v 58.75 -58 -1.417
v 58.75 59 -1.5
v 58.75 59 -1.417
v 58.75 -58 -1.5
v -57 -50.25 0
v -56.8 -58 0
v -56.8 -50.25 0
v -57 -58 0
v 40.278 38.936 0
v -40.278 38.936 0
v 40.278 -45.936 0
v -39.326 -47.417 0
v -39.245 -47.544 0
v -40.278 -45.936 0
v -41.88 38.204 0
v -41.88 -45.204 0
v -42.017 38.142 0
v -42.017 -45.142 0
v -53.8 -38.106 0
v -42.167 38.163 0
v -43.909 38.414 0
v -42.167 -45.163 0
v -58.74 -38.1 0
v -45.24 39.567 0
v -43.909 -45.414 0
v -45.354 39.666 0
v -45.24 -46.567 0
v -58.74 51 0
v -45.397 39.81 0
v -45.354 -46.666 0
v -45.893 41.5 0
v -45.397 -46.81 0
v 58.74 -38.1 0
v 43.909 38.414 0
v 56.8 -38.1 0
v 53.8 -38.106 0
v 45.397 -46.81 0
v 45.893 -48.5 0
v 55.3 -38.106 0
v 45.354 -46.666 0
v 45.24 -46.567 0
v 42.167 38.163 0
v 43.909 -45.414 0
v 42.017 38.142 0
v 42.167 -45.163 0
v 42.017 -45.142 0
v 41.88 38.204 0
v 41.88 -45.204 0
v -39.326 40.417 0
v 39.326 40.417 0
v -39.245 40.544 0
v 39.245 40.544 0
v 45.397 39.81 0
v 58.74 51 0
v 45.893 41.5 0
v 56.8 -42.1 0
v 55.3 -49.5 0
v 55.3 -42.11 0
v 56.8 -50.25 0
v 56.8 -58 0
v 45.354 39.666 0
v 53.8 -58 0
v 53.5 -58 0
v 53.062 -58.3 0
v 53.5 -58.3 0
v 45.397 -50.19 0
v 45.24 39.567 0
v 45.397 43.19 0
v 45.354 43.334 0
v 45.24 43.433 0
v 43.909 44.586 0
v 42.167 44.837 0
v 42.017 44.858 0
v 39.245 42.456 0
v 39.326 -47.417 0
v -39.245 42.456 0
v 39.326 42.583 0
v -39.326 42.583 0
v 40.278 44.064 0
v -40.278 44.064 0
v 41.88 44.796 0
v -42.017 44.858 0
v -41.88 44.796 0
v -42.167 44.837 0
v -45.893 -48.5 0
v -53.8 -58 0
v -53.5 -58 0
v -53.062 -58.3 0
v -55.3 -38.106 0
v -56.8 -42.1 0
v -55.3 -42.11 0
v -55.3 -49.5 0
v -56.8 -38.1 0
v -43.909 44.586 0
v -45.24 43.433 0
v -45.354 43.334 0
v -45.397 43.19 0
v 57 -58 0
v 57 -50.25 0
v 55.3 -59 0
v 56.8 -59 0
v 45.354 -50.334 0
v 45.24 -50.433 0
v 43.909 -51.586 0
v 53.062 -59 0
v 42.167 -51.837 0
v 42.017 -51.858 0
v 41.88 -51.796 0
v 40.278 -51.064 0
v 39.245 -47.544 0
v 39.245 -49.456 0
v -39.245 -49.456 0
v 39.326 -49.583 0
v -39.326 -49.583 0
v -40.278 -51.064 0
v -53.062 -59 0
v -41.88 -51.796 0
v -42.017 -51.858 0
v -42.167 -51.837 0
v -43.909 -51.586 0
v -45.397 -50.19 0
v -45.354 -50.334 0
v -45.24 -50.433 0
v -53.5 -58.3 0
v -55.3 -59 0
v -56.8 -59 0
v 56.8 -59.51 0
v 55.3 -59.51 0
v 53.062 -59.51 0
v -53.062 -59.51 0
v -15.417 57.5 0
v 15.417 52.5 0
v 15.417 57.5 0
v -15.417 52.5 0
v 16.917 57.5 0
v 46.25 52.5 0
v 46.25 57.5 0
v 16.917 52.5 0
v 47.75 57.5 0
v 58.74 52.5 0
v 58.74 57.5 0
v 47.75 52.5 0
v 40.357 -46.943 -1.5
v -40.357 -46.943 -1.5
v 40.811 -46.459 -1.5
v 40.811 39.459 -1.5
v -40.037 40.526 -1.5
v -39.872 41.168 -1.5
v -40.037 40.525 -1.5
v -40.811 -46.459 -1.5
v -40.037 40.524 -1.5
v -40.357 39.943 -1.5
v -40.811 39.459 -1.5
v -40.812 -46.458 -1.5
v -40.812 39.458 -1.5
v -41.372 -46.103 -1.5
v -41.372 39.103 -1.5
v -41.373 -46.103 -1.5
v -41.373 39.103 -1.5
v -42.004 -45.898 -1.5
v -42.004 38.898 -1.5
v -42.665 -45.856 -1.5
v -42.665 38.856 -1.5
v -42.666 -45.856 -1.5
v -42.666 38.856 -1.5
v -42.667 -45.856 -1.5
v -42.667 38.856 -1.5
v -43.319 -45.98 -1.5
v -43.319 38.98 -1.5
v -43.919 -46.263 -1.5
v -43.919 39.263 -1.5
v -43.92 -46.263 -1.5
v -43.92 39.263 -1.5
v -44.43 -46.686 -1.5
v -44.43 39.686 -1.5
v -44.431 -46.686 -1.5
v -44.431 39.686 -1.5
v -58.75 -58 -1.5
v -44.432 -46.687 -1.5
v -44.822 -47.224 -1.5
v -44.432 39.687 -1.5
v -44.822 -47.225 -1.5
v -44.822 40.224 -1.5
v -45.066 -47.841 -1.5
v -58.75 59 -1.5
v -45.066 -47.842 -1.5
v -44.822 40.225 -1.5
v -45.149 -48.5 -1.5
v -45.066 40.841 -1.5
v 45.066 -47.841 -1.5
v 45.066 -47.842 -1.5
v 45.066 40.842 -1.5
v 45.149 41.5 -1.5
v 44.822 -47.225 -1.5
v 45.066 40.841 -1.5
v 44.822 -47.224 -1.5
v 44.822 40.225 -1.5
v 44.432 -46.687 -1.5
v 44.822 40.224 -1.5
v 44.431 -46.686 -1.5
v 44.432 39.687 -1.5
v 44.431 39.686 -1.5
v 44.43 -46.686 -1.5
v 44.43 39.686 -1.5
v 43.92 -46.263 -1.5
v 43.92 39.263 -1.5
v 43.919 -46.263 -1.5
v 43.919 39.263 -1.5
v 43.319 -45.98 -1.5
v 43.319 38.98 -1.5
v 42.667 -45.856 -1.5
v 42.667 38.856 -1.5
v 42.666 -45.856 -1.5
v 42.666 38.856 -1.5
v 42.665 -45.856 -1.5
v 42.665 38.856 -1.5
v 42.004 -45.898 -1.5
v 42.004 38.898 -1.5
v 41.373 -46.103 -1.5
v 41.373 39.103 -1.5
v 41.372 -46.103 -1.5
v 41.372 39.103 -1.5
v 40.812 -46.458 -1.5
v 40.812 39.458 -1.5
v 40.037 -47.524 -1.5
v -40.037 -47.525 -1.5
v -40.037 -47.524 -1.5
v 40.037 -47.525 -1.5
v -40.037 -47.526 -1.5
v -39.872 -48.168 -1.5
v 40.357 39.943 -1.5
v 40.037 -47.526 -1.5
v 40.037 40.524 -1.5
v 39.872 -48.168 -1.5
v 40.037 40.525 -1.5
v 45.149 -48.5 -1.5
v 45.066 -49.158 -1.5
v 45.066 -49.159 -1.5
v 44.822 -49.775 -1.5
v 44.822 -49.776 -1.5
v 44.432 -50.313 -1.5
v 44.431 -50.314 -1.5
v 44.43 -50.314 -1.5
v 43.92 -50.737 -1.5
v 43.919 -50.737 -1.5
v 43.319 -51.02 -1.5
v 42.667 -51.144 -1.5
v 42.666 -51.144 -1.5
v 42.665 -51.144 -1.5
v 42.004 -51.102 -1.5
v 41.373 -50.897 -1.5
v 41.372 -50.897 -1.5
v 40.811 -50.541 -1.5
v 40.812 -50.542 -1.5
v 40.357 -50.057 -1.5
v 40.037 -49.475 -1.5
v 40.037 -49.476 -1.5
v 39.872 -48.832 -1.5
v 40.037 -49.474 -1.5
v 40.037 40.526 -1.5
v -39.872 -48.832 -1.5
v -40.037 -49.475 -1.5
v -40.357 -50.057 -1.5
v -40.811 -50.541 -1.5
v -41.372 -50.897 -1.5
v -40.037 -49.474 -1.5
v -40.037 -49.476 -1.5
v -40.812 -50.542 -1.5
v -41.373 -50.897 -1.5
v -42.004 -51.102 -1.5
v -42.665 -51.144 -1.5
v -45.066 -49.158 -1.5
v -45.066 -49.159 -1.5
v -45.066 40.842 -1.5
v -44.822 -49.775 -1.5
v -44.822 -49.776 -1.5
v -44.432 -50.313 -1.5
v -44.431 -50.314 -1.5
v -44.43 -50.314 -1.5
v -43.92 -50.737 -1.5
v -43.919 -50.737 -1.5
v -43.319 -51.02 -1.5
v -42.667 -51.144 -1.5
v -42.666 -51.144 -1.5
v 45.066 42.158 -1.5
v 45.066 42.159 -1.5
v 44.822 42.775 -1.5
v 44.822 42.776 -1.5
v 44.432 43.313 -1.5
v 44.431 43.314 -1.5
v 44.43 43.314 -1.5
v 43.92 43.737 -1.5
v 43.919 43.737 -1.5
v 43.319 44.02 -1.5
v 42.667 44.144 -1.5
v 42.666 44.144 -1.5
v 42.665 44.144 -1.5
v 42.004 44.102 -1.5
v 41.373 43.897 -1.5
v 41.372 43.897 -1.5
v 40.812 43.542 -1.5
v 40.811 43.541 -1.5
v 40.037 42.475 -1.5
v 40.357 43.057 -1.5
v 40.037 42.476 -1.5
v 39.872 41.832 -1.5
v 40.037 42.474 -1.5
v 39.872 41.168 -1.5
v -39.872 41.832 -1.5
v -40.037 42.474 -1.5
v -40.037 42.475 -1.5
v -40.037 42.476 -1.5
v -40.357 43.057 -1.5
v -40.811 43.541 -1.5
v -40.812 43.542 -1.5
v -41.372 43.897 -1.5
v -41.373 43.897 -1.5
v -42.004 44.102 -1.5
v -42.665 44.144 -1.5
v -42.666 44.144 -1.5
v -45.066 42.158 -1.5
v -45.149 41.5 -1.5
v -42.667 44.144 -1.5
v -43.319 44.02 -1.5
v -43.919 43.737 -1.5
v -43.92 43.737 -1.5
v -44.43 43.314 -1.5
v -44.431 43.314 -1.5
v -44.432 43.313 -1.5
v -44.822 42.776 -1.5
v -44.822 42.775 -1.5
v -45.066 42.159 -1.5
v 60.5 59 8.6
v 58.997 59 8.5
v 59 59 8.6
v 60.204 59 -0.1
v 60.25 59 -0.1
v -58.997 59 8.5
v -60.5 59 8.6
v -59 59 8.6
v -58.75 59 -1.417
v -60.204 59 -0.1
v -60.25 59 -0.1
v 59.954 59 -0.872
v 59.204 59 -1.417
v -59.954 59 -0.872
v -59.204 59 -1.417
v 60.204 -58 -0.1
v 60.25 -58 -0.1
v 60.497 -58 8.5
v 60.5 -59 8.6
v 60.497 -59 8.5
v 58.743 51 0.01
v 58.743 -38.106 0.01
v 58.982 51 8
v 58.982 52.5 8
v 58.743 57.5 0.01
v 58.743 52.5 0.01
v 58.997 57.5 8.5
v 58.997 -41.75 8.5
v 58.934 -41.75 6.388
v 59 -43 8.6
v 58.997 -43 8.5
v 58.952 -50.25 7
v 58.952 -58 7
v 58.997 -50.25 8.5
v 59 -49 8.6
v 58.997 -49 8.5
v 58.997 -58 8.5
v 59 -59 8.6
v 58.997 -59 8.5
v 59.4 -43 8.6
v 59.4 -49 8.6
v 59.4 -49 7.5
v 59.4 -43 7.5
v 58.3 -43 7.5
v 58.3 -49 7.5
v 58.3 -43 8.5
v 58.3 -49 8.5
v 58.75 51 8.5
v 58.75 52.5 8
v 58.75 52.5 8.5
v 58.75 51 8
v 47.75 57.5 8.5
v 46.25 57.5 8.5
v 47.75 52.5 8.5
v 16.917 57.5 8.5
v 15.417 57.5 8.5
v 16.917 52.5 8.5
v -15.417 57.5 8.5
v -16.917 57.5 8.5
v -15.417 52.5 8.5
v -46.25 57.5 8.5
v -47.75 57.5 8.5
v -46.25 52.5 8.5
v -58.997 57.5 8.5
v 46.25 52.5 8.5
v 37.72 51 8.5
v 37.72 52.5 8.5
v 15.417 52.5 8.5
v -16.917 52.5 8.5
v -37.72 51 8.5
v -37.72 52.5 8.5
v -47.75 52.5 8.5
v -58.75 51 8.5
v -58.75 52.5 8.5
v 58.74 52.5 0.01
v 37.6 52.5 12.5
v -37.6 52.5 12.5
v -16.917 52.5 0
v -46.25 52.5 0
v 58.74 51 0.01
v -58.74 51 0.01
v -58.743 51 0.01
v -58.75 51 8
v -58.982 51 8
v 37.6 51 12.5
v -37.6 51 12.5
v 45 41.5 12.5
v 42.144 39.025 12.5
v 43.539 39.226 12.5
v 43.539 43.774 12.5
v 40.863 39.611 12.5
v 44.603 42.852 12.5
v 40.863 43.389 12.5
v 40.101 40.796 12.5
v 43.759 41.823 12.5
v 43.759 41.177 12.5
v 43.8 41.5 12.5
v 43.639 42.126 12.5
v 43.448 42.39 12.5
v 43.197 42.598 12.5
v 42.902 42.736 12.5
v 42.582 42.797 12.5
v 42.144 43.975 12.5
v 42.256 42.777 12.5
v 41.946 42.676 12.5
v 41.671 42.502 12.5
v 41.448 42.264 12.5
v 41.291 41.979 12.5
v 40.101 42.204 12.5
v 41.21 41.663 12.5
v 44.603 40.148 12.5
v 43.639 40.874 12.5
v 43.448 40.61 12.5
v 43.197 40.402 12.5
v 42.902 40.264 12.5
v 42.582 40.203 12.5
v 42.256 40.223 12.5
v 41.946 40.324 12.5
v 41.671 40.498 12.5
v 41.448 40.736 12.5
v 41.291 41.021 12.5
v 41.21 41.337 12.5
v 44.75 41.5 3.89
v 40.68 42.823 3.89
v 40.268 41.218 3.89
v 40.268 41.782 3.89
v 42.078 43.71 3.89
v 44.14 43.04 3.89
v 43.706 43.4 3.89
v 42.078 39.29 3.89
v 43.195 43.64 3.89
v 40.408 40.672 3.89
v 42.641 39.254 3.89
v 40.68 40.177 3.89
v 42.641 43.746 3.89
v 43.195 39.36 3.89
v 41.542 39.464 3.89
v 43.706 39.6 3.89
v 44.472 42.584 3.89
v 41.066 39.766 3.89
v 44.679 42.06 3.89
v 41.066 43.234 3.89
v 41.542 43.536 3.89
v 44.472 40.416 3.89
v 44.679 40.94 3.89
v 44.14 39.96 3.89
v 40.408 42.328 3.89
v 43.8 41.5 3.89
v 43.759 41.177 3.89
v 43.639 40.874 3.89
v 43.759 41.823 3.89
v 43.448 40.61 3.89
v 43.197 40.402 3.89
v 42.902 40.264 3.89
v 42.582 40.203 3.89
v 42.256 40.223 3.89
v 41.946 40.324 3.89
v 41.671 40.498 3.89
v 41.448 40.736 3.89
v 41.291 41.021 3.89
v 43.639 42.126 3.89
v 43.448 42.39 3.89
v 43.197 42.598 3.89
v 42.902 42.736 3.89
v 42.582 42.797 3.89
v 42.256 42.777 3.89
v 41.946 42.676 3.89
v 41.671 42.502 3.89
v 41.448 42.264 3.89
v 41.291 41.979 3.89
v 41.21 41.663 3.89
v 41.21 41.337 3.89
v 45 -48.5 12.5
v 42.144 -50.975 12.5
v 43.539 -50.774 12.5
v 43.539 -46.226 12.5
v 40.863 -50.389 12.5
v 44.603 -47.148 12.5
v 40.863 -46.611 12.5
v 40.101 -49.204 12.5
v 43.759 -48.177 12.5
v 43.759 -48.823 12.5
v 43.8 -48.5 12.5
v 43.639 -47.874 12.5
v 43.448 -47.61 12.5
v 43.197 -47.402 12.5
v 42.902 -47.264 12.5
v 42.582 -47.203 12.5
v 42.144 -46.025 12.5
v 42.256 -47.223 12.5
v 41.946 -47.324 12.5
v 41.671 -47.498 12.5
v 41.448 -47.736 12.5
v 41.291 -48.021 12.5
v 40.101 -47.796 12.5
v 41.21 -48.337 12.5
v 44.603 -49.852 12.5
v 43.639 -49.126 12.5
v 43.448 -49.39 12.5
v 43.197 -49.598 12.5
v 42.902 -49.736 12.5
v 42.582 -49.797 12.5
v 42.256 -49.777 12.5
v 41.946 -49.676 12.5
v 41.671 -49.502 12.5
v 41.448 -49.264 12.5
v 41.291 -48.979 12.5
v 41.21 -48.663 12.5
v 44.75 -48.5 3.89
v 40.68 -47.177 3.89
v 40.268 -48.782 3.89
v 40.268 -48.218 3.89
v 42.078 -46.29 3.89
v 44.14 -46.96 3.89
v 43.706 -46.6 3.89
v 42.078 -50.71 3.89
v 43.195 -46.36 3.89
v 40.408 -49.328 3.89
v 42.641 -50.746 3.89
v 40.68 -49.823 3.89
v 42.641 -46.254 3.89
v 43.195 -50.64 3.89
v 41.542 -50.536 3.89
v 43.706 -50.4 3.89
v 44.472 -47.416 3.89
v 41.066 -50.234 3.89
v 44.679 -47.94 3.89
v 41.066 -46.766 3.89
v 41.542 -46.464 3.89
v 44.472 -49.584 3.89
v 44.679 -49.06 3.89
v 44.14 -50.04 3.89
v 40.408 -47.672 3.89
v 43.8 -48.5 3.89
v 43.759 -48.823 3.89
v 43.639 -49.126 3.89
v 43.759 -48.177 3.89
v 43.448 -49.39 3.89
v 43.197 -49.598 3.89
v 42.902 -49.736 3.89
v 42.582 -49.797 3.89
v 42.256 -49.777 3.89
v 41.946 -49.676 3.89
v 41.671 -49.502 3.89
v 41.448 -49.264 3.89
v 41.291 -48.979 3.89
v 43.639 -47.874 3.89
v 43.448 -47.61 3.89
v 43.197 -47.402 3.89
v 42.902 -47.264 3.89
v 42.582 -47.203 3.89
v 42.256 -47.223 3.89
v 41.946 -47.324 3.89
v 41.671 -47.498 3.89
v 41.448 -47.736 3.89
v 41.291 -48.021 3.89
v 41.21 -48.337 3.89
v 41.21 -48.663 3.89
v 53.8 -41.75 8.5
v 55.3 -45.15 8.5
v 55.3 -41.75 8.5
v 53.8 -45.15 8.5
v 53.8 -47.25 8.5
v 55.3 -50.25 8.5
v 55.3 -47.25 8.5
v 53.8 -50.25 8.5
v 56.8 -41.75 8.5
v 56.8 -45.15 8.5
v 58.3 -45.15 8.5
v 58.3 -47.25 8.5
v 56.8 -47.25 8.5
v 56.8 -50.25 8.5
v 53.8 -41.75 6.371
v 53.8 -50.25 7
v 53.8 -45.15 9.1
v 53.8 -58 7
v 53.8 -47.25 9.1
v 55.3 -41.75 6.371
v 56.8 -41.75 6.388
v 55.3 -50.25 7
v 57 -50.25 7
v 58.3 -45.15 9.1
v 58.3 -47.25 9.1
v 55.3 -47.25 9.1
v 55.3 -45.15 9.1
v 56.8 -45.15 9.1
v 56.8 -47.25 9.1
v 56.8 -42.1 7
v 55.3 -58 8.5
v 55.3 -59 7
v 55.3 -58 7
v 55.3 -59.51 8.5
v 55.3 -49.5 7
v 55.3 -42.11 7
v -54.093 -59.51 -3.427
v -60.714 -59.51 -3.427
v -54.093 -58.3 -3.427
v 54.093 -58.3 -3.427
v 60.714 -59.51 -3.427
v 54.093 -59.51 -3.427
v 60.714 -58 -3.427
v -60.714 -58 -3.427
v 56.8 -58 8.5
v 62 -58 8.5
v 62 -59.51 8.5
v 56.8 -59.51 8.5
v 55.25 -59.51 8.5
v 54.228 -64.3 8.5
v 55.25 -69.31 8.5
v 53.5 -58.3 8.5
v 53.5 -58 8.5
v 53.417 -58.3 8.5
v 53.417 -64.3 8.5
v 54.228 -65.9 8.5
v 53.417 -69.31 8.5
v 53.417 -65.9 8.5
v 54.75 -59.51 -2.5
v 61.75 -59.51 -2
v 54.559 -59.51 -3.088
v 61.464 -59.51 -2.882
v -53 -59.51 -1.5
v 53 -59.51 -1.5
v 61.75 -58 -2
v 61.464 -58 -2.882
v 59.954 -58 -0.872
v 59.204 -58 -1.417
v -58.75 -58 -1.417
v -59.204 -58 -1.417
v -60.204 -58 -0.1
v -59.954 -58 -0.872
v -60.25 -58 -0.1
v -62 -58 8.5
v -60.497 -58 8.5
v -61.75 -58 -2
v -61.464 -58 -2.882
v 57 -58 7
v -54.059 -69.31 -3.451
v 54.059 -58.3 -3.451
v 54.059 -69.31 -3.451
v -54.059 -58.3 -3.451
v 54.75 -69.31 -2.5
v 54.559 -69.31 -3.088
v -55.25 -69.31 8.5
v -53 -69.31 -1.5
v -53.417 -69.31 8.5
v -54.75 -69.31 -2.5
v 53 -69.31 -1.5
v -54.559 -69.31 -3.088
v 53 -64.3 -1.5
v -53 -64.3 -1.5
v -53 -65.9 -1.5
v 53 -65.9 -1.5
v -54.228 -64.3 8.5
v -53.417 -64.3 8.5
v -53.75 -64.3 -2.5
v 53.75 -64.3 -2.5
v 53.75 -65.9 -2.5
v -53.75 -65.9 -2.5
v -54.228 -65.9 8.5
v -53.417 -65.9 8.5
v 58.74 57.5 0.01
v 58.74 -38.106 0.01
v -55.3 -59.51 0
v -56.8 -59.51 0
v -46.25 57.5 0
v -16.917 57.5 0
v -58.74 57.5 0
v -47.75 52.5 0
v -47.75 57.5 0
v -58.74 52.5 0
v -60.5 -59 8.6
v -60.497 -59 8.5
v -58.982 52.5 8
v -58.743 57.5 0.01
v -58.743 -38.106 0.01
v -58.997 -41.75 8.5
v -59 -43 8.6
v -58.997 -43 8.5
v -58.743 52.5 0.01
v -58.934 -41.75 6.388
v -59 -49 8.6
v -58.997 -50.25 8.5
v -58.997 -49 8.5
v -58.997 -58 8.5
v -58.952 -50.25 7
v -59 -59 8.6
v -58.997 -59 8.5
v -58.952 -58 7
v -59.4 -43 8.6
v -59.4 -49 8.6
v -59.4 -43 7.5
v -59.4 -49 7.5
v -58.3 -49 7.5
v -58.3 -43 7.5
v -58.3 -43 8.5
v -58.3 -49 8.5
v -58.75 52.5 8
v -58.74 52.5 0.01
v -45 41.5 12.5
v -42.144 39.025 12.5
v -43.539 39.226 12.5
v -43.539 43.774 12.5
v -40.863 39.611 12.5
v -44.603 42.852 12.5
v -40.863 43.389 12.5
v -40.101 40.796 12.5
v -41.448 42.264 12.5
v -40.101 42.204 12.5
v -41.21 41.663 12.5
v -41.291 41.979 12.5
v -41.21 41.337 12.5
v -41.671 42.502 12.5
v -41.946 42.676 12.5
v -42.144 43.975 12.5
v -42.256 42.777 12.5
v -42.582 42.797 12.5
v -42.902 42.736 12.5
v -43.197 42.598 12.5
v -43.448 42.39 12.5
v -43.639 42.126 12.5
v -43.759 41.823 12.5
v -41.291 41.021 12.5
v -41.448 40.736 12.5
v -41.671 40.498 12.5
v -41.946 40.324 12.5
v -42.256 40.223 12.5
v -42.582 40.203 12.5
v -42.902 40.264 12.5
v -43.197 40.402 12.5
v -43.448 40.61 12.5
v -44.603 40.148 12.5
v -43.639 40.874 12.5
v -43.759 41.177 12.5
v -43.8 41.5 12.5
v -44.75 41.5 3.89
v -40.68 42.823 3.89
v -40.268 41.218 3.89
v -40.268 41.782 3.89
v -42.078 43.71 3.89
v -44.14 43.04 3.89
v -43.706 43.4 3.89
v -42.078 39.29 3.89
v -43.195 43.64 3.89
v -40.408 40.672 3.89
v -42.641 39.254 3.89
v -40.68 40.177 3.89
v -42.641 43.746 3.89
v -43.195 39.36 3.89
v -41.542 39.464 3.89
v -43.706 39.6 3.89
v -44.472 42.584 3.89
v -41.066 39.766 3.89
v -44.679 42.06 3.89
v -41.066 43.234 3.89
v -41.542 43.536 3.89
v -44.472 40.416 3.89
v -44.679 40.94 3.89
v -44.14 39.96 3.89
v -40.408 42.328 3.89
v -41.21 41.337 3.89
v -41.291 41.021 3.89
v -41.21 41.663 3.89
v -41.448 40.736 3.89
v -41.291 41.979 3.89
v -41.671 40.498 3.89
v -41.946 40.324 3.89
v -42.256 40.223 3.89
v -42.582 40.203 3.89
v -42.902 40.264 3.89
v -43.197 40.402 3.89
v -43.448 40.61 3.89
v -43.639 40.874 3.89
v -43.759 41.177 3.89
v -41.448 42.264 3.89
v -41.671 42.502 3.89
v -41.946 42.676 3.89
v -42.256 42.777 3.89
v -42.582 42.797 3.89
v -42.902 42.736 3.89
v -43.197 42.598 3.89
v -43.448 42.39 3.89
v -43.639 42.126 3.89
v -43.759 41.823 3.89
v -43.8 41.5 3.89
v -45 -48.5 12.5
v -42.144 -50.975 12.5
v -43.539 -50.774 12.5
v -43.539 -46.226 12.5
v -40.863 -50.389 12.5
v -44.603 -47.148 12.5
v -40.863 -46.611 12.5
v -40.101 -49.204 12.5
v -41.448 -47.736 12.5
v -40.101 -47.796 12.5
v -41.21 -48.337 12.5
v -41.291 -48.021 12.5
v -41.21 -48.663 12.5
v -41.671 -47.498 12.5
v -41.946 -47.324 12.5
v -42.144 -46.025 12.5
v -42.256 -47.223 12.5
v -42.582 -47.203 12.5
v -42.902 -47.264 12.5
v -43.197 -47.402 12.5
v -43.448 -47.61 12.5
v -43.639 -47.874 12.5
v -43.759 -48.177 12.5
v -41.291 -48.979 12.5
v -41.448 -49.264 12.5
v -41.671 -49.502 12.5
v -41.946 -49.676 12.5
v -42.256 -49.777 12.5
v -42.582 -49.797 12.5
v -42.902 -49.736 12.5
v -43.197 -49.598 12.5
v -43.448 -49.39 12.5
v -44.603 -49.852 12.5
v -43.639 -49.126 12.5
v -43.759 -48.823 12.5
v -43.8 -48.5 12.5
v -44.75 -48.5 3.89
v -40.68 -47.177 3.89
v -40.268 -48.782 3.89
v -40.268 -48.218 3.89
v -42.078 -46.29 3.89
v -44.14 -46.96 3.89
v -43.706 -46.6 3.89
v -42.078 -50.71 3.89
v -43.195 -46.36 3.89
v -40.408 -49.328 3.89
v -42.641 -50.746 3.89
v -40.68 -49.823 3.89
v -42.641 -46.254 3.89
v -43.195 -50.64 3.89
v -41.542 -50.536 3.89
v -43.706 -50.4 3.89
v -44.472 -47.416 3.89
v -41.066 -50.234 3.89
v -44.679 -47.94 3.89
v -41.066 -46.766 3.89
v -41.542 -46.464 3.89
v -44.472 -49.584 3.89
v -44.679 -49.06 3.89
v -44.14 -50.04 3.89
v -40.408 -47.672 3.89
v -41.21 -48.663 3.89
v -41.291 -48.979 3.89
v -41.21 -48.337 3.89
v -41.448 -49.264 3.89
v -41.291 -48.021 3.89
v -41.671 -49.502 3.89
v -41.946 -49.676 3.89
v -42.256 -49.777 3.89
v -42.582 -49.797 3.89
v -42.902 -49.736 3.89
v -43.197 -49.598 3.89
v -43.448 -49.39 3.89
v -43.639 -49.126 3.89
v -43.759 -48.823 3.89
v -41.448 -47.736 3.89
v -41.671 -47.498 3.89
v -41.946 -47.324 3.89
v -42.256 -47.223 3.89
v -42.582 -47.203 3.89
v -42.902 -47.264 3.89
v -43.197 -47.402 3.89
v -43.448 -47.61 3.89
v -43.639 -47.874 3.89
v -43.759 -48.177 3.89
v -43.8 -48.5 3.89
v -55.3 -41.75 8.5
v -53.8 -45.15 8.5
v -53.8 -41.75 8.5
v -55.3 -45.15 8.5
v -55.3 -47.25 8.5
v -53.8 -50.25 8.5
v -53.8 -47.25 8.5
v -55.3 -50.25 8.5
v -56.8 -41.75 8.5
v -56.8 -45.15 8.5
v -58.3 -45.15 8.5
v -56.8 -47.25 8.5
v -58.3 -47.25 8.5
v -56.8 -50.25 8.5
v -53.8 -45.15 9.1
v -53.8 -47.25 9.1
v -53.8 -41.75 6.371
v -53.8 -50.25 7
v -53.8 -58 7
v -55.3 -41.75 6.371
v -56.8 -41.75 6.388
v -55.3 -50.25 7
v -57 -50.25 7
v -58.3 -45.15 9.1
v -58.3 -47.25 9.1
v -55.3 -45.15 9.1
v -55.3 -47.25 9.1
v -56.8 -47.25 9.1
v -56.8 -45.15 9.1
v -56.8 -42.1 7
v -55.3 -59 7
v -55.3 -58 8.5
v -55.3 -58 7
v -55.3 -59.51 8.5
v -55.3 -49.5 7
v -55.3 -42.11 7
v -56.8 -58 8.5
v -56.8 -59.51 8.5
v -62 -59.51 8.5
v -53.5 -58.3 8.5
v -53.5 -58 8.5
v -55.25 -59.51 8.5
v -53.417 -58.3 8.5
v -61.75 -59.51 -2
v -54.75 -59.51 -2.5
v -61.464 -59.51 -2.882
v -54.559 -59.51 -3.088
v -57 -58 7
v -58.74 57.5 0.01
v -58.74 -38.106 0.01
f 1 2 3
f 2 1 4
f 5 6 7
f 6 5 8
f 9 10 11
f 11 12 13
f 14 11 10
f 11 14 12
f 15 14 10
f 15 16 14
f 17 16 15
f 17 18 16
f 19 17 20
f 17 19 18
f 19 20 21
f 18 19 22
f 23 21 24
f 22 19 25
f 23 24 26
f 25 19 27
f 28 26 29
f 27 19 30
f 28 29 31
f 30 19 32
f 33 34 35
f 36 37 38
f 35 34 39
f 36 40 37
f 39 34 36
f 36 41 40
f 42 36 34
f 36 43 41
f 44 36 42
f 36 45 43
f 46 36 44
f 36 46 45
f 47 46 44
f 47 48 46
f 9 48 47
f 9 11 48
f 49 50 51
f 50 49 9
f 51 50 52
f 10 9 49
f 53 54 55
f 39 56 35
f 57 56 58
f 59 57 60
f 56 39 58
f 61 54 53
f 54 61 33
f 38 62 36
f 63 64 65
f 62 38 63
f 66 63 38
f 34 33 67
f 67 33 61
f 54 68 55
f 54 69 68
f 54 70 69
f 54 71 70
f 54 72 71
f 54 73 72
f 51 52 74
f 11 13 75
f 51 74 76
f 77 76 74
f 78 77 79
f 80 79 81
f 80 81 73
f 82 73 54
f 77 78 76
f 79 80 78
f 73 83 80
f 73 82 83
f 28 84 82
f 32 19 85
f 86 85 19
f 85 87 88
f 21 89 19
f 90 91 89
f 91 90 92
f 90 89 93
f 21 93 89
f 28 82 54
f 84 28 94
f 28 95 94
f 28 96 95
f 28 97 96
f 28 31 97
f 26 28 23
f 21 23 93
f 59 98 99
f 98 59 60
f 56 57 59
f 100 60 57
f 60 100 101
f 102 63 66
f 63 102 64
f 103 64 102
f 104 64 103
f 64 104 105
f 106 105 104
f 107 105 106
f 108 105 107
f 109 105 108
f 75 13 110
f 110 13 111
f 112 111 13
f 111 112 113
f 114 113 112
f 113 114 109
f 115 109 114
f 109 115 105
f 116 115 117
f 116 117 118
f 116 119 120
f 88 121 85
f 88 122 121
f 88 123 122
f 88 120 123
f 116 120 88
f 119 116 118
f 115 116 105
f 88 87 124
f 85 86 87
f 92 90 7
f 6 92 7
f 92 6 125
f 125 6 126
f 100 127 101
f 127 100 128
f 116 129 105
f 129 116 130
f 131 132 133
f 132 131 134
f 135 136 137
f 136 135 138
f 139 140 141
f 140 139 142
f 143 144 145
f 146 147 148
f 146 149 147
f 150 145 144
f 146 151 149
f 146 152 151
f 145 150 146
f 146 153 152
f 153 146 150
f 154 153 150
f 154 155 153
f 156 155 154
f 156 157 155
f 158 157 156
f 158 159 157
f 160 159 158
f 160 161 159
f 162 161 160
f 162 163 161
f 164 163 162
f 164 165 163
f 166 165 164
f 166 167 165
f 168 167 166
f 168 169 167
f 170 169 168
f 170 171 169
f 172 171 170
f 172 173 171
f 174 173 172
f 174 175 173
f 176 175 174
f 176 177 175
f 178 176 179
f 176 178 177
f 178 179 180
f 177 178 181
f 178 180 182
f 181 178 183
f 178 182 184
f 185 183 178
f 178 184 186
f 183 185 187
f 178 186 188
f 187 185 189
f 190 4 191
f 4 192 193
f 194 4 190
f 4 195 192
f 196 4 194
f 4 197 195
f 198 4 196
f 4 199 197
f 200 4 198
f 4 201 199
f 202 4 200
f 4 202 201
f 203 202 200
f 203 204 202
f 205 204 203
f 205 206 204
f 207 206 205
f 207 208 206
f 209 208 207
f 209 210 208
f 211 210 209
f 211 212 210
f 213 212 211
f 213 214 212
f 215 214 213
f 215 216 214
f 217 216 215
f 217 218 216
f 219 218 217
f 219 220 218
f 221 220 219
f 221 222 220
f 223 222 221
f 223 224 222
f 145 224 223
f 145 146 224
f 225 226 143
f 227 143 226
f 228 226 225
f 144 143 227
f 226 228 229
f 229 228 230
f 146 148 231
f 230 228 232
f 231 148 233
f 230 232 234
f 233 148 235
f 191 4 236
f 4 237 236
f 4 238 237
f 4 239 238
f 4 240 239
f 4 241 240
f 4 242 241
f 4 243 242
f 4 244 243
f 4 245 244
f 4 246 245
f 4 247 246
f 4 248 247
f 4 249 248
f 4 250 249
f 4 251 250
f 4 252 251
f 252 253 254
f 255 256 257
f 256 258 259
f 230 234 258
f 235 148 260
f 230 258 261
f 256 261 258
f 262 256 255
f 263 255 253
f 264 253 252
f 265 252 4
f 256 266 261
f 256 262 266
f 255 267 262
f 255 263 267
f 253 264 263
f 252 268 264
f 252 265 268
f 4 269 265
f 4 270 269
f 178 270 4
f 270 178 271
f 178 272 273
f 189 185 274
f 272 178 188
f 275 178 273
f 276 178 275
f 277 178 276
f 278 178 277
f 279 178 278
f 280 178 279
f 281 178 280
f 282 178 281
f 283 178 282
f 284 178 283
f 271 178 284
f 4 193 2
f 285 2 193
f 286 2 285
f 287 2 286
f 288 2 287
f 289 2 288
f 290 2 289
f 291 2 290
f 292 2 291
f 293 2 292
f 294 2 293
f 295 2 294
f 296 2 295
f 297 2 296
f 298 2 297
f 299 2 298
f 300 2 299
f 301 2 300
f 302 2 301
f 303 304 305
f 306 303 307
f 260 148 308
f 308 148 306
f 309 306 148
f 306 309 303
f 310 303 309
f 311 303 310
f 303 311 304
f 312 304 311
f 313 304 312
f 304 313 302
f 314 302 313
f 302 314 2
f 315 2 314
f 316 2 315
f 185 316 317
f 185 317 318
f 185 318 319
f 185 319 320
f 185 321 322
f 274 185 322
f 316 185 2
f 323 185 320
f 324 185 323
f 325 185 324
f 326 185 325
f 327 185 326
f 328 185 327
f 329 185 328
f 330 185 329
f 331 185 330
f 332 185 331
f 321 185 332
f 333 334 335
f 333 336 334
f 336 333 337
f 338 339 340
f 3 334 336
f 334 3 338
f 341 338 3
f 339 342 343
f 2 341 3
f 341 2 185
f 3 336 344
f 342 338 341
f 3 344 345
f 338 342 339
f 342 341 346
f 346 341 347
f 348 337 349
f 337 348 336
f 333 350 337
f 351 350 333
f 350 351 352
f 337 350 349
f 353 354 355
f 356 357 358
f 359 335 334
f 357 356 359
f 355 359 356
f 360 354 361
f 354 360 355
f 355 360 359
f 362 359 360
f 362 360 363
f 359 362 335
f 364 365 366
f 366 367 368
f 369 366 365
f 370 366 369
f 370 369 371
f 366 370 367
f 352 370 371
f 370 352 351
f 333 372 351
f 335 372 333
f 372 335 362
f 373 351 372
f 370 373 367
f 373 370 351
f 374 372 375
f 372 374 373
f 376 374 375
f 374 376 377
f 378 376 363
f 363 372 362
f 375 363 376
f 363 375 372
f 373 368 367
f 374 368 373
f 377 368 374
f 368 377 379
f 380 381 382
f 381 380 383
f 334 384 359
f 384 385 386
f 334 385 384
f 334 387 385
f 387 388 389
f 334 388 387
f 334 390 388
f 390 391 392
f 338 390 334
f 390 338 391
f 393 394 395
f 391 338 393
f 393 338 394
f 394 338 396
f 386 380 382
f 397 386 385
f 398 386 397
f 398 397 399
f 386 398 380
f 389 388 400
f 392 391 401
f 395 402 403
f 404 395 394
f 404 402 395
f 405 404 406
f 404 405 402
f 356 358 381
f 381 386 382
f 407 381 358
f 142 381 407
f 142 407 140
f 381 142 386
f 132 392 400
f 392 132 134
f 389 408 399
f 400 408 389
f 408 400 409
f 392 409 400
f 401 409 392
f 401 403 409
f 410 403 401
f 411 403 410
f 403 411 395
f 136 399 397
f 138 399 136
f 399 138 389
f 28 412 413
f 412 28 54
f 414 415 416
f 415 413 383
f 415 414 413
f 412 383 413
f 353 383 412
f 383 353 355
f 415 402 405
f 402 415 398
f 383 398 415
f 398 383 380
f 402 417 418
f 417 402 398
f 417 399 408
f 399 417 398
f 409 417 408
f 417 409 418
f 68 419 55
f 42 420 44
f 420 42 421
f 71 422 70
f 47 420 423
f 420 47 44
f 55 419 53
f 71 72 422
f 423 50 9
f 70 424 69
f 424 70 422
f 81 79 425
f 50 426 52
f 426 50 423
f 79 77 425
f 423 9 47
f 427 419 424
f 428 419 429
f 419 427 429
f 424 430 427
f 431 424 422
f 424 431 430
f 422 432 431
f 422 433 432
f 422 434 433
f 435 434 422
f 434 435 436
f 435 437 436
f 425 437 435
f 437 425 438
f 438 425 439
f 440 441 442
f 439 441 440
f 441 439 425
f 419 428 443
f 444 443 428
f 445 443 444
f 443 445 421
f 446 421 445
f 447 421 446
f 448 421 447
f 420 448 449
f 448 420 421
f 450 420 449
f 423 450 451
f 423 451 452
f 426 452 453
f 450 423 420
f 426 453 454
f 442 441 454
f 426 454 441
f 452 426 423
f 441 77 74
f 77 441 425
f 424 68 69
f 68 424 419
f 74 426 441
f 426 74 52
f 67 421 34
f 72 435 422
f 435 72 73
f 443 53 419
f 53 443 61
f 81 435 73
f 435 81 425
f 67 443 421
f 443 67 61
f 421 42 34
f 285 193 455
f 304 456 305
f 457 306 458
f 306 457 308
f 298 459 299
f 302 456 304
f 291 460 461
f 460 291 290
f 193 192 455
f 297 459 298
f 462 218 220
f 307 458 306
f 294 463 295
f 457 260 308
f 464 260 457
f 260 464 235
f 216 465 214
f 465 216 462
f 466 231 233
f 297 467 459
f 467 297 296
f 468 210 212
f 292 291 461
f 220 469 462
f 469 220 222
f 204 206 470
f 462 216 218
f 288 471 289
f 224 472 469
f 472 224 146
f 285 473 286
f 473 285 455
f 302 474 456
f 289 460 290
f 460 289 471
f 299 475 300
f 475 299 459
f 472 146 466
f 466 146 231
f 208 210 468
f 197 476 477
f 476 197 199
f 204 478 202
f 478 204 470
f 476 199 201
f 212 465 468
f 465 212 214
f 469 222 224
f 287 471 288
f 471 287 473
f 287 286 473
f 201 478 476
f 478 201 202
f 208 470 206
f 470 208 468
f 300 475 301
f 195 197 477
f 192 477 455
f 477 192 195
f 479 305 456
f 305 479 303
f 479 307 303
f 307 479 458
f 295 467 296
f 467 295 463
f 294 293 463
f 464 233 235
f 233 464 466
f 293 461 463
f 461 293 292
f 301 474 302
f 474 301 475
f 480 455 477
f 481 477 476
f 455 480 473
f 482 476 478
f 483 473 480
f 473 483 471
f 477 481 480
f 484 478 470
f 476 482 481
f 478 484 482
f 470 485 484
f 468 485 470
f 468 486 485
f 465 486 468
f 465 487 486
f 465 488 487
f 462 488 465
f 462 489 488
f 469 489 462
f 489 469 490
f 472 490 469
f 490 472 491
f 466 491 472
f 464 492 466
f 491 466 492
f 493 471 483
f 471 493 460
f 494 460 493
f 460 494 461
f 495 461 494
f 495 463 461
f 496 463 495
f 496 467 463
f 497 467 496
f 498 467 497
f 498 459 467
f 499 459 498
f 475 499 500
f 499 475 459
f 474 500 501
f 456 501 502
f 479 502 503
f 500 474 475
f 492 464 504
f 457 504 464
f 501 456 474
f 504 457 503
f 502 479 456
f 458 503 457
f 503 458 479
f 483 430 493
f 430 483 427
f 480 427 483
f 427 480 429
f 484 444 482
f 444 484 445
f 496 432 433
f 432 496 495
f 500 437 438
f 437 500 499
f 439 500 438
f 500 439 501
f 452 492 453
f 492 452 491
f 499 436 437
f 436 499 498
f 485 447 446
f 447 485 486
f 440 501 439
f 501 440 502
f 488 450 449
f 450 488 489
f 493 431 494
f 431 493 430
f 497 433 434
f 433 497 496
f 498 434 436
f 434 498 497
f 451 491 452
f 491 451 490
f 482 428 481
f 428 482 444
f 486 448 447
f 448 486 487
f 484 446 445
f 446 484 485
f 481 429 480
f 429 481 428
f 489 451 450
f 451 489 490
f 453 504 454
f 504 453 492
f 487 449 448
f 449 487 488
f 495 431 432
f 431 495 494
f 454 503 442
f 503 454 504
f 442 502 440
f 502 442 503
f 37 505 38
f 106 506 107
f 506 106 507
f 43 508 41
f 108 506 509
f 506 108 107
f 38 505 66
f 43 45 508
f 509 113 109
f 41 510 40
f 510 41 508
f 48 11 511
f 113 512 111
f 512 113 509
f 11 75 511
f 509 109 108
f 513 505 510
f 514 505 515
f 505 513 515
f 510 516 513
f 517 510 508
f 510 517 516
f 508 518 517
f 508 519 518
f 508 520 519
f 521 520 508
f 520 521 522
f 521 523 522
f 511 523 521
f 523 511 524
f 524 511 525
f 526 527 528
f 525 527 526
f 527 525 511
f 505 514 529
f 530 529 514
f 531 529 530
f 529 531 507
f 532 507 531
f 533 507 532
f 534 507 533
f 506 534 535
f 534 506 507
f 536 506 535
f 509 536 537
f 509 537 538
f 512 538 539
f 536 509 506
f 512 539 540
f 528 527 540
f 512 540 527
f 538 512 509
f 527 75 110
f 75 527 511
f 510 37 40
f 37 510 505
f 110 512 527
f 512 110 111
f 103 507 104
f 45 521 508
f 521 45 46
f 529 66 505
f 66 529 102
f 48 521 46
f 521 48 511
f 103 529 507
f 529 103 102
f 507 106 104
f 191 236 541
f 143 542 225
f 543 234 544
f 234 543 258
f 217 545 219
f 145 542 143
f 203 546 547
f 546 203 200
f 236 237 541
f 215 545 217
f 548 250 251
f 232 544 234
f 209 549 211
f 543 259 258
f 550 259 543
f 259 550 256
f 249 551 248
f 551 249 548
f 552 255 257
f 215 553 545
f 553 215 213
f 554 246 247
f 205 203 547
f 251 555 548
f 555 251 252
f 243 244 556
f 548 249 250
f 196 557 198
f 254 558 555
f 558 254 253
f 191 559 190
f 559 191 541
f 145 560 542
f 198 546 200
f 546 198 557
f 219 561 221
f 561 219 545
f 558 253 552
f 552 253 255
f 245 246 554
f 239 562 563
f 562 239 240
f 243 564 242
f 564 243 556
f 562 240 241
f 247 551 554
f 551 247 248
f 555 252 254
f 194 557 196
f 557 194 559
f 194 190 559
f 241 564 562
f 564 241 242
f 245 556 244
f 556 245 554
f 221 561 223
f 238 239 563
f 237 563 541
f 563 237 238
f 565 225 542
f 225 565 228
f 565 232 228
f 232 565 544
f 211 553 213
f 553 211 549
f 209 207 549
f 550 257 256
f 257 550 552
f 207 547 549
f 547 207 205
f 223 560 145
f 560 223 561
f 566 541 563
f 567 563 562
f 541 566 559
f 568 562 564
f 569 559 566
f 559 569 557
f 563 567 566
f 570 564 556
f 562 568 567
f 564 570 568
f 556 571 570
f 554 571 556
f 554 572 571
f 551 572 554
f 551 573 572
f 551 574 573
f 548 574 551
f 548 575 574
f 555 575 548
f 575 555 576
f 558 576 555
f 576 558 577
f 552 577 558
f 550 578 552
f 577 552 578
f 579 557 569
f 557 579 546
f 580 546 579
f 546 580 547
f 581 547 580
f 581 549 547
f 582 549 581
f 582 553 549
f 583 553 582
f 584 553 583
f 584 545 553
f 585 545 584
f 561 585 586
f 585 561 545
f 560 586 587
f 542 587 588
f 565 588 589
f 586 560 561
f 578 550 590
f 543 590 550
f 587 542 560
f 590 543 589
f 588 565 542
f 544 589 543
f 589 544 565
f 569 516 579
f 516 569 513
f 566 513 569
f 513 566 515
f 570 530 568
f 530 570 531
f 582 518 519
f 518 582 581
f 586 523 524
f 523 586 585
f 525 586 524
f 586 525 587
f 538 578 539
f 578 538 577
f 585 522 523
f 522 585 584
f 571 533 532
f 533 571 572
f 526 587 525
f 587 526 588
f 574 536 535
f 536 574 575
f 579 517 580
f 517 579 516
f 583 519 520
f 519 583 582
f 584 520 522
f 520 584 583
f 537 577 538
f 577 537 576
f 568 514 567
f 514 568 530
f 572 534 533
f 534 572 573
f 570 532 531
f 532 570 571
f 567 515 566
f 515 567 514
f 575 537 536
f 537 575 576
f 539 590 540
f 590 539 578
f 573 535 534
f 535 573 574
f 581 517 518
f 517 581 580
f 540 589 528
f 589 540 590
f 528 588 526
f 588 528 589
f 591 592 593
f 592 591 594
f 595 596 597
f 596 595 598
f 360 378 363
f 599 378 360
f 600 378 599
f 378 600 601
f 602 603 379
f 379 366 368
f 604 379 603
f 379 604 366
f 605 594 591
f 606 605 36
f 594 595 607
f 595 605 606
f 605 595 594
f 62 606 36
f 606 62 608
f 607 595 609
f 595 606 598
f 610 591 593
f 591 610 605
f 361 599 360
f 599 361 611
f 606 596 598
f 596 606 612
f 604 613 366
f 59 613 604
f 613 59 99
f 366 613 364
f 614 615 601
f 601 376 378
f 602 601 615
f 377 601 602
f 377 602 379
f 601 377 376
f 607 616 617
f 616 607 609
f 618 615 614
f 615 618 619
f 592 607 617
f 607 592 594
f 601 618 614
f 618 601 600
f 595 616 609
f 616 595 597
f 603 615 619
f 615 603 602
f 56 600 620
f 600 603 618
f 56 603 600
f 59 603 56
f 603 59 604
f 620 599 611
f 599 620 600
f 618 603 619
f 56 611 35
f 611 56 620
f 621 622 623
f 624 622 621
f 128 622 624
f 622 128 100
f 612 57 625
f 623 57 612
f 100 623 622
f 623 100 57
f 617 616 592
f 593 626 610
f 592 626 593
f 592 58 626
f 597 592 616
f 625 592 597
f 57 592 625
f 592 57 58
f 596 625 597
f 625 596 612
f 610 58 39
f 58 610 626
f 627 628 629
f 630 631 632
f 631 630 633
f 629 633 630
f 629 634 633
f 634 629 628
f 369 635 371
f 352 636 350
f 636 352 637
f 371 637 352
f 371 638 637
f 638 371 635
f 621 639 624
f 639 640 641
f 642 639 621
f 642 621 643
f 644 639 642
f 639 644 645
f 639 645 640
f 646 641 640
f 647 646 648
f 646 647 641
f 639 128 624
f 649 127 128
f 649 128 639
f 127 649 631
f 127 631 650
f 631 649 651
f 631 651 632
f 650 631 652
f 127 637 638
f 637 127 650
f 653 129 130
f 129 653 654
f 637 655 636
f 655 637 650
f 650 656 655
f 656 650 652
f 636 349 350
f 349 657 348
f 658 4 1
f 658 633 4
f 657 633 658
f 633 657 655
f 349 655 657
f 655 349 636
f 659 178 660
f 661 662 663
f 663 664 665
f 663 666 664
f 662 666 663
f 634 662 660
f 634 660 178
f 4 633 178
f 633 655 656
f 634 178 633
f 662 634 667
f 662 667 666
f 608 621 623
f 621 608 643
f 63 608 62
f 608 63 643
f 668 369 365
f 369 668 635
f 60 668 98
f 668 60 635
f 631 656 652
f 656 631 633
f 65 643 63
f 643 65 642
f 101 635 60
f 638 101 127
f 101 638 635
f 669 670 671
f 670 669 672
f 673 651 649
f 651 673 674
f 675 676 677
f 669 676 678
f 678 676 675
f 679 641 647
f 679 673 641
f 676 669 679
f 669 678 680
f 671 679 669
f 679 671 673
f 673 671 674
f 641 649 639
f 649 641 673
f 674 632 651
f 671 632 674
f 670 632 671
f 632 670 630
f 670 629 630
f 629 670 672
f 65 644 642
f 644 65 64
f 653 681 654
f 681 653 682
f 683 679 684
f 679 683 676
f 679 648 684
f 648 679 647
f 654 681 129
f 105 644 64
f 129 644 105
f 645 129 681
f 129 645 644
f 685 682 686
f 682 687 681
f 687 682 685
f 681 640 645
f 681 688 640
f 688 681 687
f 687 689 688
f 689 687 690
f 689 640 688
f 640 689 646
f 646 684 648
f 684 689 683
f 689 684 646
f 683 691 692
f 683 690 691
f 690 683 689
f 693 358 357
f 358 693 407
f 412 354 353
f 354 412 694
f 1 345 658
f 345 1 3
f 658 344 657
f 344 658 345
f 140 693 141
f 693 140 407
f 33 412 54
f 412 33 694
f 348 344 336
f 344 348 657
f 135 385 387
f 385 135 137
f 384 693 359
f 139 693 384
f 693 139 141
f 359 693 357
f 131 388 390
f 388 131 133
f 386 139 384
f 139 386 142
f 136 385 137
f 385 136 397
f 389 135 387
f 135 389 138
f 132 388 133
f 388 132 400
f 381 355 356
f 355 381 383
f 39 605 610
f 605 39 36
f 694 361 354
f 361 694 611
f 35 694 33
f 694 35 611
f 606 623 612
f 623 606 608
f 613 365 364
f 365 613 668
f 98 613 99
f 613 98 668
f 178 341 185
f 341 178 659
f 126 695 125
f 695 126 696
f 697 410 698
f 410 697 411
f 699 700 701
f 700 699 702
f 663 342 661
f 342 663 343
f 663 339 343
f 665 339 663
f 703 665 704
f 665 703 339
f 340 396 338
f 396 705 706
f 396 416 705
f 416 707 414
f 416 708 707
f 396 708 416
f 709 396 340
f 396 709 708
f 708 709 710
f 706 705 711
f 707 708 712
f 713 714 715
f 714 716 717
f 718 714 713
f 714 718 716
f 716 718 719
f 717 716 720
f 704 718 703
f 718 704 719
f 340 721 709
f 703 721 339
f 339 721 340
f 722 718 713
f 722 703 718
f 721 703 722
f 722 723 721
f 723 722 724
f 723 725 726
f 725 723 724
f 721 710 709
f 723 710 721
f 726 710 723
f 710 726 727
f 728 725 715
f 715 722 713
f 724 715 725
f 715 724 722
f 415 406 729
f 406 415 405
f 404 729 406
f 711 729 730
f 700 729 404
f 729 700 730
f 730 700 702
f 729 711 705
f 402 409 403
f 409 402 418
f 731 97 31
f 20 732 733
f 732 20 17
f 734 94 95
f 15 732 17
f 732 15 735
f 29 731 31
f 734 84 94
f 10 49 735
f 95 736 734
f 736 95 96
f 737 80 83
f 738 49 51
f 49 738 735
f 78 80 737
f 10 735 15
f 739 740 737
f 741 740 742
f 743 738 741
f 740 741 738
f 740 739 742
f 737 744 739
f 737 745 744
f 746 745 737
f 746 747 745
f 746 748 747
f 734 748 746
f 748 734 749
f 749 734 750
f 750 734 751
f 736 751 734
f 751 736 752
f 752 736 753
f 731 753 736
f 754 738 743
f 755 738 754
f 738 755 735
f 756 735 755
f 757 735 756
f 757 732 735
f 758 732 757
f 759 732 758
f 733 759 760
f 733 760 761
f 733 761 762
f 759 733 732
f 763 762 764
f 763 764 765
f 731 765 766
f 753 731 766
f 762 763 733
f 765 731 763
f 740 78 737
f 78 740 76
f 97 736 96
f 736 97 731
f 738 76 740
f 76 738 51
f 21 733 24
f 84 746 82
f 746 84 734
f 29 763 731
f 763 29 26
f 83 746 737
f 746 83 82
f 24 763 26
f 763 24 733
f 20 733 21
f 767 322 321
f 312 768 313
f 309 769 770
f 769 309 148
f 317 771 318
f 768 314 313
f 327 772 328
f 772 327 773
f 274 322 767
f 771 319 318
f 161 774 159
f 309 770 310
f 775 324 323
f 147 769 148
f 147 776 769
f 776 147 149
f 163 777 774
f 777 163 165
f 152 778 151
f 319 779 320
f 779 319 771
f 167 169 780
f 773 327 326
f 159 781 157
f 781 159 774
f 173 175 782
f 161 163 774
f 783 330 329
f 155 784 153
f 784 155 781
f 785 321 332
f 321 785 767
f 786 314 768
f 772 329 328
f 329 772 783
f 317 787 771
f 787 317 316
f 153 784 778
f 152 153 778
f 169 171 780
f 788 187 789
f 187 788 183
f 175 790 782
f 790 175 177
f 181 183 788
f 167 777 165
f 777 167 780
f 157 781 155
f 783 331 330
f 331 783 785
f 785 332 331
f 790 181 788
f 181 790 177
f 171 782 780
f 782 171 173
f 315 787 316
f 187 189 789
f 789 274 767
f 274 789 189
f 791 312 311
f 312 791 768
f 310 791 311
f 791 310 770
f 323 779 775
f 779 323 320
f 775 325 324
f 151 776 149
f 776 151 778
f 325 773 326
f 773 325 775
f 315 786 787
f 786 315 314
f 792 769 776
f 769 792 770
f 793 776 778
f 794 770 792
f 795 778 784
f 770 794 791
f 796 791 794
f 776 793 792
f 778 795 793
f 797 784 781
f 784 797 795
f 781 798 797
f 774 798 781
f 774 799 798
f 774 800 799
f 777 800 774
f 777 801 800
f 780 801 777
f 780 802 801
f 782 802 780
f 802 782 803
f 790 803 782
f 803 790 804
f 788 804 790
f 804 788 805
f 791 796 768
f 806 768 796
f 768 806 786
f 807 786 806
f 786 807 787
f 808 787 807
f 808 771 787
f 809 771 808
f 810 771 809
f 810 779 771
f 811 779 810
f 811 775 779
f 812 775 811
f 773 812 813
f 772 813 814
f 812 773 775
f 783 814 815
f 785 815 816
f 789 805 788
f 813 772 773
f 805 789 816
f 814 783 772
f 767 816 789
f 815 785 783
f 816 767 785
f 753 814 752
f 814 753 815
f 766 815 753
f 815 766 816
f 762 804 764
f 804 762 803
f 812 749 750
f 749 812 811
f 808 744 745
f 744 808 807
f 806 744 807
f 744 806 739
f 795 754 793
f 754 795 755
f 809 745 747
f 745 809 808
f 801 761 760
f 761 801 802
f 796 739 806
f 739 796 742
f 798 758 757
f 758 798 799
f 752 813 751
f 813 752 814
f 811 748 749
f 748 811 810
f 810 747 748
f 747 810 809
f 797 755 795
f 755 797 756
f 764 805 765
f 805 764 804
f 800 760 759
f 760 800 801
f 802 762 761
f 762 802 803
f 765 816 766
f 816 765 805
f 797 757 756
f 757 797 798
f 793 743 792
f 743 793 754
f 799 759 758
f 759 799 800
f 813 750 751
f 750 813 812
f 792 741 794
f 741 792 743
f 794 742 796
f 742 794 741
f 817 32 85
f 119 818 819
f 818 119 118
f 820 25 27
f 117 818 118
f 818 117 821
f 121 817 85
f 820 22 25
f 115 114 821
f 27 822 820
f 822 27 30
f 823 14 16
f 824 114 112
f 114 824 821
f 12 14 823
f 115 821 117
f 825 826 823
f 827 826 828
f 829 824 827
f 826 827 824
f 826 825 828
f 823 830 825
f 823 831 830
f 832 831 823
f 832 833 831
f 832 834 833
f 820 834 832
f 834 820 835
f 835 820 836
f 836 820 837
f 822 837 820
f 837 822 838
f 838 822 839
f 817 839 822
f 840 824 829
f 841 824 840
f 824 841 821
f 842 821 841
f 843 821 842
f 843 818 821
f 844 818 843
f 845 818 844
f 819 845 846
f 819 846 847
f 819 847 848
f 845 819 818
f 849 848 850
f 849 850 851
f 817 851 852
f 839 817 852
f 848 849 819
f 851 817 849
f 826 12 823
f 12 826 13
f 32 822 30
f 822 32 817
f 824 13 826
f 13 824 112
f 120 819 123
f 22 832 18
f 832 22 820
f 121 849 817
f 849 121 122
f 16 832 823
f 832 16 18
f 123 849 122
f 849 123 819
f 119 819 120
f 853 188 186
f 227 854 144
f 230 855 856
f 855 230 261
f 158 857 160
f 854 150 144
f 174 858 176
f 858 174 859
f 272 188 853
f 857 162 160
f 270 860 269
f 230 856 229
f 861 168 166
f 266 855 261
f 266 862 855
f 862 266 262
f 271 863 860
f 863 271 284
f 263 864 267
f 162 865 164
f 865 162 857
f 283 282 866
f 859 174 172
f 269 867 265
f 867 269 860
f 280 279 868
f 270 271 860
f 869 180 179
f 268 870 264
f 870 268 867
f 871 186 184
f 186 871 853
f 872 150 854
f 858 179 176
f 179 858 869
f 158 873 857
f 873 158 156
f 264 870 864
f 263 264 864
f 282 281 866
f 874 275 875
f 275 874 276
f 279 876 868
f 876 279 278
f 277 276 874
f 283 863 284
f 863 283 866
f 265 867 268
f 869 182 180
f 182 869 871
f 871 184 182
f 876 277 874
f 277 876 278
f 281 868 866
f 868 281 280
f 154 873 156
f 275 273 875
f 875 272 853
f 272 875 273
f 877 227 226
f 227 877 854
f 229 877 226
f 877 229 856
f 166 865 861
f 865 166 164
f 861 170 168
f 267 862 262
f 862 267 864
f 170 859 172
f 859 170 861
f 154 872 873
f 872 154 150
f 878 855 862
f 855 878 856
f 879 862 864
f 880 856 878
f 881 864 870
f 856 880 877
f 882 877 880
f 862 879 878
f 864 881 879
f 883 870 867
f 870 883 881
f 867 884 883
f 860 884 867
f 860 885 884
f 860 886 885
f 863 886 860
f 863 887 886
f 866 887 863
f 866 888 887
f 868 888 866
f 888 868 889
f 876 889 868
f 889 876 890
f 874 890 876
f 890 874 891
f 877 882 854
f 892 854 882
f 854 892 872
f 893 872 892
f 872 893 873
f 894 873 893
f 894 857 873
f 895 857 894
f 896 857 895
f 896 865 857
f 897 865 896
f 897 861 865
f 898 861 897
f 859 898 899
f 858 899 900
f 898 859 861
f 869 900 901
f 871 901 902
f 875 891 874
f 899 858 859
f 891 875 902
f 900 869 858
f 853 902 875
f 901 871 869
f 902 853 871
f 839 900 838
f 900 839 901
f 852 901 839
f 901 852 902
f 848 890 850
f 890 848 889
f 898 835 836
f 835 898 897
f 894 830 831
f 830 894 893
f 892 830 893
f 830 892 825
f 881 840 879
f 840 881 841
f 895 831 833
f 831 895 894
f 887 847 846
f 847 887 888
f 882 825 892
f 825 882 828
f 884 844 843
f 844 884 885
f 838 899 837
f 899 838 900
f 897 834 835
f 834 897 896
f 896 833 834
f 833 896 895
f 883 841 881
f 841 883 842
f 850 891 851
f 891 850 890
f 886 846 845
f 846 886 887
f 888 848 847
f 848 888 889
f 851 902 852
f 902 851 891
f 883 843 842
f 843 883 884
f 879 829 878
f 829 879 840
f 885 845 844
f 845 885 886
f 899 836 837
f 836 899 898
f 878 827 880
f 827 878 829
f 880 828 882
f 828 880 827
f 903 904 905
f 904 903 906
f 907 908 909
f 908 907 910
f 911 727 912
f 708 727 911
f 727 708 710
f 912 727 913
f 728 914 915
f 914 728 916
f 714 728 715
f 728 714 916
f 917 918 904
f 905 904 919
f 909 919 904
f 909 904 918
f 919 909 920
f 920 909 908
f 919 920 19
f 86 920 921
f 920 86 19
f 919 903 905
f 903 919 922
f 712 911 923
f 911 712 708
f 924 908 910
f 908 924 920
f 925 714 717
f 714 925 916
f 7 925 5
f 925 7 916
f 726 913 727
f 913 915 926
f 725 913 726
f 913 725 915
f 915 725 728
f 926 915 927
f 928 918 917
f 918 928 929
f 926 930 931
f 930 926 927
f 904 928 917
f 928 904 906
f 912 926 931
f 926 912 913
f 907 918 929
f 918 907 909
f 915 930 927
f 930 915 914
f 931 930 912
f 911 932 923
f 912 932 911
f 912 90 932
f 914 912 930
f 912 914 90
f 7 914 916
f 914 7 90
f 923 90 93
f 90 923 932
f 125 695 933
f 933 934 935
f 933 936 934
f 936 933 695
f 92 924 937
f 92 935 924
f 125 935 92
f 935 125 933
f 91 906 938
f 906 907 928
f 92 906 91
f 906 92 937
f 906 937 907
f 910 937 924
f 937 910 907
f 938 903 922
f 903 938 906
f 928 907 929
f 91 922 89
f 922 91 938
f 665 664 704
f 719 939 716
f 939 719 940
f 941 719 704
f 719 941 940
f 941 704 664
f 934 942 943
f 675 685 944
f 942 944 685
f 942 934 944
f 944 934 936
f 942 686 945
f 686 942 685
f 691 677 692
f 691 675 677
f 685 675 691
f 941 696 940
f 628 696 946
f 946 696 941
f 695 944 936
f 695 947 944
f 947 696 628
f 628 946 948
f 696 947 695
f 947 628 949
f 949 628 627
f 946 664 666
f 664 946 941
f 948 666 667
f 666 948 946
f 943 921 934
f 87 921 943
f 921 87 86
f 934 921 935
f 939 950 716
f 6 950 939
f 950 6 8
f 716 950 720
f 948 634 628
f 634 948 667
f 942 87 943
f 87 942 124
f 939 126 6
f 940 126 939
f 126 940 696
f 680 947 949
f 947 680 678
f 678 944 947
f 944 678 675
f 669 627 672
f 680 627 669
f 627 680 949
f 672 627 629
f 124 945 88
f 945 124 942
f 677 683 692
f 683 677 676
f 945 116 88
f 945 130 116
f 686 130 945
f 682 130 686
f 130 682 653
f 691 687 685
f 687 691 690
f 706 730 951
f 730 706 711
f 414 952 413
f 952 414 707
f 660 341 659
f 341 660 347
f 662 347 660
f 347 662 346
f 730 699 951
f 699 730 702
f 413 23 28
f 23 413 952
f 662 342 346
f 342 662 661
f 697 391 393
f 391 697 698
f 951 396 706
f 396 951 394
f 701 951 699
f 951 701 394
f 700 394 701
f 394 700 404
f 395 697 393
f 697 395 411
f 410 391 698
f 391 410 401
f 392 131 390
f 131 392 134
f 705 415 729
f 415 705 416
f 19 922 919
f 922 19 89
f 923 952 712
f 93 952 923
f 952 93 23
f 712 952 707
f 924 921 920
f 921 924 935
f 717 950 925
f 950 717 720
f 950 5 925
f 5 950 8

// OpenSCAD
module Oberteil()
{

module Schraubenbippus()
{
	difference()
	{
		// Huelle
		cylinder( h = 14, d1 = 7, d2 = 5);

		// Schraubenloch
		translate([ 0, 0, -0.01])
			//linear_extrude( height = 5.4)
			//circle( d=5.3, $fn = 25);
			cylinder( h = 5.4, d1 = 5.3, d2 = 4.5, $fn = 25);

		// Durchgangsloch fuer Schraube
		translate([ 0, 0, -0.1]) cylinder( h = 15, d = 2.6, $fn = 25);
	}
}


// Erzeugt Viertelkreis in Z-Richtung
module Kante_rund( length = 1, radius = 1.5)
{
	linear_extrude(height = length)
	difference()
	{
		circle( r = radius, $fs=1);
		translate([ -radius, 0, 0]) square( 2 * radius, center=true);
		translate([ 0, -radius, 0]) square( 2 * radius, center=true);
	}
}


// Parallelogrammartig
module Seitenwand( length = 1)
{
	// nach hinten schieben
	translate( [ 0, length, 0])
	// hochkant drehen
	rotate( [ 90, 0, 0])
	// gross machen
	linear_extrude( height = length)
	polygon( points=[[ -.01, -.1], [ 1.5, -.1], [ 1.75, 8.6], [ 0.25, 8.6]], paths=[[ 0, 1, 2, 3]]);
}




module Front()
{
	module front_ohne_rundung()
	{
	rotate( [ 90, 0, 0])
		linear_extrude( height = 1.5)
		polygon( points=[[ -1, -0.5], [ 123.5/2-1.5, -0.5], [ 124/2-1.5, 10], [ -1, 10]], paths=[[ 0, 1, 2, 3]]);
	}


    // Rundung anbringen
	minkowski()
	{
		front_ohne_rundung();
		// kleiner liegender Halb-Zylinder
		difference()
		{
			rotate([ 90, 0, 0]) cylinder( r=1.5, h=0.01, $fn=10);
			translate([ 0, 0, 2]) cube(4, center=true);
		}
	}
}


module haelfte()
{
	// rechte Haelfte

	// Position Lagerbock
	lager_x = 107.6/2;
	lager_y = -105;


	// Grundflaeche
	difference() {
		translate([ -1, -118, -1.5]) cube([ (119-1.5)/2+1, 118, 1.5]);

		// Aussparung Mutternlochmodul hinten
		translate([ 85/2, -17.5, -1.6]) cylinder( h = 3.6, d = 6);

		// Aussparung Mutternlochmodul vorn
		translate([ 85/2, -107.5, -1.6]) cylinder( h = 3.6, d = 6);

		// der Laengsschlitz im Lagerbock
		translate([ lager_x, lager_y, 0])
		translate([ 1.5, -4.3, 0.01]) cube([ 1.5, 10, 10]);

	}


	// Abrundung
	translate([ (119-1.5)/2 - 0.01, -118, 0.01]) rotate([ -90, 0, 0]) Kante_rund( 118);

	// Seitenwand
	difference() {
		translate([ (119-1.5)/2, -118, 0]) Seitenwand( 118);

		// Aussparung fuer Nippel
		translate([ lager_x, lager_y, 0])
		translate([ 4.5, -3, 7.5]) cube([ 1.1, 6, 2]);
	}

	// Rueckwand aussen
	translate([ -1, -1.5, -0.1]) cube([ 117/2+1.5, 1.5, 8.6]);

	// Rueckwand, nach innen gehend
	translate([ 92.5/2, -8, -0.1]) cube([ 1.5, 8, 8.6]);
	
	// Rueckwand, nach innen gehend, zusaetzlich
	translate([ 92.5/6, -8, -0.1]) cube([ 1.5, 8, 8.6]);
	
	union() {
		// Rueckwand, innen
		// breiter und hoeher
		translate([ -1, -8, -0.1]) cube([ 49.75+10, 1.5, 8.6]);

		// Lippe fuer Leiterplatte
		translate([ 0, -6.5, 7.5])
		rotate([ 90, 0, 0]) 
		linear_extrude( height = 1.5) 
		polygon( points=[[ -1, 0], [ 75.5/2, 0], [ 75.2/2, 5], [ -1, 5]], paths=[[ 0, 1, 2, 3]]);

	}


    // Loecher
	// hinten
	translate([ 85/2, -17.5, -1.5]) Schraubenbippus();

	// vorn
	translate([ 85/2, -107.5, -1.5]) Schraubenbippus();


	// Lagerbock oben
	difference()
	{
		union()
		{
			// Block
			translate([ lager_x, lager_y, 0])
			translate([ 0, -8.5/2, 0]) cube([5.5, 8.5, 8.5]);
	
			// Bippus gegenueber der Rundung
			translate([ lager_x, lager_y, 0])
			translate([ 0, -2.5/2, 8.5]) cube([ 4.5, 2.1, .6]);
		}

		// der Hebelschlitz
		translate([ lager_x, lager_y, 0])
		translate([ 1.5, -4.3, -3]) cube([ 1.5, 10, 13]);

		// Aussparung fuer Nippel
		translate([ lager_x, lager_y, 0])
		translate([ 4.5, -3, 7.5]) cube([ 1.1, 6, 2]);
	}



	// Front, Teil 1
	difference()
	{
		translate([ 0, -117, -1.5]) Front();
		// Hauptausschnitt
		translate([ -3, -118.7, 0]) cube([ 107/2 + 3, 2, 10]);
		
		// Hebelschlitz
		translate([ lager_x + 1.5, lager_y - 14, 0]) cube([1.5 , 3, 10]);
	}

	// vorderster Rahmen
	translate([ 0, -128.3, -1.5-2])
	difference()
	{
		// Volumen/ Rahmen
		minkowski()
		{
			translate([ 0, 11, 0])
			rotate([ 90, 0, 0]) 
			linear_extrude( height = 11) 
			polygon( points=[[ -1, 0+1], [ 109.5/2-1, 0+1], [ 110.5/2-1, 12], [ -1, 12]], paths=[[ 0, 1, 2, 3]]);

			// kleiner liegender Halb-Zylinder
			difference()
			{
				rotate([ 90, 0, 0]) cylinder( r=1, h=0.01, $fn=10);
				translate([ 0, 0, 2]) cube(4, center=true);
			}
		}
		
		// grosser Ausbruch
		translate([ 0, 11.5, 2])
		rotate([ 90, 0, 0]) 
		linear_extrude( height = 12) 
		polygon( points=[[ -2, 0], [ 106/2, 0], [ 107/2, 12], [ -2, 12]], paths=[[ 0, 1, 2, 3]]);


		// Ausbruch Frontplatte
		translate([ 0, 5, 1]) 
		rotate([ 90, 0, 0]) 
		linear_extrude( height = 1.6) 
		polygon( points=[[ -2, 0], [ 107.5/2, 0], [ 108.5/2, 11.5], [ -2, 11.5]], paths=[[ 0, 1, 2, 3]]);
	}
	
	

	//
	// zusaetzliche
	// Stuetzstrukturen
	//

	// an der Rueckwand
	translate([ 95/2, -8, 0]) cube([ 12, 1.5, 8]);

	// am Lagerbock, innen
	translate([ lager_x + 1.5, lager_y + 3.9, 0])
	rotate([ 0, -90, 0])
	linear_extrude( height = 1.5)
	polygon( points=[[ -0.01, -0.01], [ -0.01, 4], [ 7, -0.01]], paths=[[ 0, 1, 2]]);


	// am Lagerbock, aussen
	translate([ lager_x + 5.2, lager_y + 3.9, 0])
	rotate([ 0, -90, 0])
	linear_extrude( height = 2.2)
	polygon( points=[[ 0, 0], [ 0, 4], [ 7, 0]], paths=[[ 0, 1, 2]]);

	// zw. Lager und Front, innen
	translate([ lager_x , lager_y - 13, 0])
	cube([1.5, 9.5, 7]);	

	// zw. Lager und Front, aussen
	translate([ lager_x + 3.2, lager_y - 13, 0])
	cube([2.2, 9.5, 7]);	


}


// und nun beide zusammen:
                   haelfte();
mirror([ 1, 0, 0]) haelfte();
}


// hier wird eigentlich gemalt:
translate([ 0, 118/2, 0]) 
difference()
{
	Oberteil();
	/*
	// Aussparung fuer M052, Netzwerkbuchse
	translate([ -(119.5/2)+77, -104-15.1, -0.8])
	cube([ 16.5, 23, .9]);
	
	// Aussparung fuer M052, USB-Buchse
	translate([ -(119.5/2)+39.5, -104-15.1, -0.9])
	cube([ 8, 15, 1]);
	
	// Aussparung fuer M052, USB-Buchse
	translate([ -(119.5/2)+20.5, -104-15.1, -0.9])
	cube([ 8, 15, 1]);
    */
}
